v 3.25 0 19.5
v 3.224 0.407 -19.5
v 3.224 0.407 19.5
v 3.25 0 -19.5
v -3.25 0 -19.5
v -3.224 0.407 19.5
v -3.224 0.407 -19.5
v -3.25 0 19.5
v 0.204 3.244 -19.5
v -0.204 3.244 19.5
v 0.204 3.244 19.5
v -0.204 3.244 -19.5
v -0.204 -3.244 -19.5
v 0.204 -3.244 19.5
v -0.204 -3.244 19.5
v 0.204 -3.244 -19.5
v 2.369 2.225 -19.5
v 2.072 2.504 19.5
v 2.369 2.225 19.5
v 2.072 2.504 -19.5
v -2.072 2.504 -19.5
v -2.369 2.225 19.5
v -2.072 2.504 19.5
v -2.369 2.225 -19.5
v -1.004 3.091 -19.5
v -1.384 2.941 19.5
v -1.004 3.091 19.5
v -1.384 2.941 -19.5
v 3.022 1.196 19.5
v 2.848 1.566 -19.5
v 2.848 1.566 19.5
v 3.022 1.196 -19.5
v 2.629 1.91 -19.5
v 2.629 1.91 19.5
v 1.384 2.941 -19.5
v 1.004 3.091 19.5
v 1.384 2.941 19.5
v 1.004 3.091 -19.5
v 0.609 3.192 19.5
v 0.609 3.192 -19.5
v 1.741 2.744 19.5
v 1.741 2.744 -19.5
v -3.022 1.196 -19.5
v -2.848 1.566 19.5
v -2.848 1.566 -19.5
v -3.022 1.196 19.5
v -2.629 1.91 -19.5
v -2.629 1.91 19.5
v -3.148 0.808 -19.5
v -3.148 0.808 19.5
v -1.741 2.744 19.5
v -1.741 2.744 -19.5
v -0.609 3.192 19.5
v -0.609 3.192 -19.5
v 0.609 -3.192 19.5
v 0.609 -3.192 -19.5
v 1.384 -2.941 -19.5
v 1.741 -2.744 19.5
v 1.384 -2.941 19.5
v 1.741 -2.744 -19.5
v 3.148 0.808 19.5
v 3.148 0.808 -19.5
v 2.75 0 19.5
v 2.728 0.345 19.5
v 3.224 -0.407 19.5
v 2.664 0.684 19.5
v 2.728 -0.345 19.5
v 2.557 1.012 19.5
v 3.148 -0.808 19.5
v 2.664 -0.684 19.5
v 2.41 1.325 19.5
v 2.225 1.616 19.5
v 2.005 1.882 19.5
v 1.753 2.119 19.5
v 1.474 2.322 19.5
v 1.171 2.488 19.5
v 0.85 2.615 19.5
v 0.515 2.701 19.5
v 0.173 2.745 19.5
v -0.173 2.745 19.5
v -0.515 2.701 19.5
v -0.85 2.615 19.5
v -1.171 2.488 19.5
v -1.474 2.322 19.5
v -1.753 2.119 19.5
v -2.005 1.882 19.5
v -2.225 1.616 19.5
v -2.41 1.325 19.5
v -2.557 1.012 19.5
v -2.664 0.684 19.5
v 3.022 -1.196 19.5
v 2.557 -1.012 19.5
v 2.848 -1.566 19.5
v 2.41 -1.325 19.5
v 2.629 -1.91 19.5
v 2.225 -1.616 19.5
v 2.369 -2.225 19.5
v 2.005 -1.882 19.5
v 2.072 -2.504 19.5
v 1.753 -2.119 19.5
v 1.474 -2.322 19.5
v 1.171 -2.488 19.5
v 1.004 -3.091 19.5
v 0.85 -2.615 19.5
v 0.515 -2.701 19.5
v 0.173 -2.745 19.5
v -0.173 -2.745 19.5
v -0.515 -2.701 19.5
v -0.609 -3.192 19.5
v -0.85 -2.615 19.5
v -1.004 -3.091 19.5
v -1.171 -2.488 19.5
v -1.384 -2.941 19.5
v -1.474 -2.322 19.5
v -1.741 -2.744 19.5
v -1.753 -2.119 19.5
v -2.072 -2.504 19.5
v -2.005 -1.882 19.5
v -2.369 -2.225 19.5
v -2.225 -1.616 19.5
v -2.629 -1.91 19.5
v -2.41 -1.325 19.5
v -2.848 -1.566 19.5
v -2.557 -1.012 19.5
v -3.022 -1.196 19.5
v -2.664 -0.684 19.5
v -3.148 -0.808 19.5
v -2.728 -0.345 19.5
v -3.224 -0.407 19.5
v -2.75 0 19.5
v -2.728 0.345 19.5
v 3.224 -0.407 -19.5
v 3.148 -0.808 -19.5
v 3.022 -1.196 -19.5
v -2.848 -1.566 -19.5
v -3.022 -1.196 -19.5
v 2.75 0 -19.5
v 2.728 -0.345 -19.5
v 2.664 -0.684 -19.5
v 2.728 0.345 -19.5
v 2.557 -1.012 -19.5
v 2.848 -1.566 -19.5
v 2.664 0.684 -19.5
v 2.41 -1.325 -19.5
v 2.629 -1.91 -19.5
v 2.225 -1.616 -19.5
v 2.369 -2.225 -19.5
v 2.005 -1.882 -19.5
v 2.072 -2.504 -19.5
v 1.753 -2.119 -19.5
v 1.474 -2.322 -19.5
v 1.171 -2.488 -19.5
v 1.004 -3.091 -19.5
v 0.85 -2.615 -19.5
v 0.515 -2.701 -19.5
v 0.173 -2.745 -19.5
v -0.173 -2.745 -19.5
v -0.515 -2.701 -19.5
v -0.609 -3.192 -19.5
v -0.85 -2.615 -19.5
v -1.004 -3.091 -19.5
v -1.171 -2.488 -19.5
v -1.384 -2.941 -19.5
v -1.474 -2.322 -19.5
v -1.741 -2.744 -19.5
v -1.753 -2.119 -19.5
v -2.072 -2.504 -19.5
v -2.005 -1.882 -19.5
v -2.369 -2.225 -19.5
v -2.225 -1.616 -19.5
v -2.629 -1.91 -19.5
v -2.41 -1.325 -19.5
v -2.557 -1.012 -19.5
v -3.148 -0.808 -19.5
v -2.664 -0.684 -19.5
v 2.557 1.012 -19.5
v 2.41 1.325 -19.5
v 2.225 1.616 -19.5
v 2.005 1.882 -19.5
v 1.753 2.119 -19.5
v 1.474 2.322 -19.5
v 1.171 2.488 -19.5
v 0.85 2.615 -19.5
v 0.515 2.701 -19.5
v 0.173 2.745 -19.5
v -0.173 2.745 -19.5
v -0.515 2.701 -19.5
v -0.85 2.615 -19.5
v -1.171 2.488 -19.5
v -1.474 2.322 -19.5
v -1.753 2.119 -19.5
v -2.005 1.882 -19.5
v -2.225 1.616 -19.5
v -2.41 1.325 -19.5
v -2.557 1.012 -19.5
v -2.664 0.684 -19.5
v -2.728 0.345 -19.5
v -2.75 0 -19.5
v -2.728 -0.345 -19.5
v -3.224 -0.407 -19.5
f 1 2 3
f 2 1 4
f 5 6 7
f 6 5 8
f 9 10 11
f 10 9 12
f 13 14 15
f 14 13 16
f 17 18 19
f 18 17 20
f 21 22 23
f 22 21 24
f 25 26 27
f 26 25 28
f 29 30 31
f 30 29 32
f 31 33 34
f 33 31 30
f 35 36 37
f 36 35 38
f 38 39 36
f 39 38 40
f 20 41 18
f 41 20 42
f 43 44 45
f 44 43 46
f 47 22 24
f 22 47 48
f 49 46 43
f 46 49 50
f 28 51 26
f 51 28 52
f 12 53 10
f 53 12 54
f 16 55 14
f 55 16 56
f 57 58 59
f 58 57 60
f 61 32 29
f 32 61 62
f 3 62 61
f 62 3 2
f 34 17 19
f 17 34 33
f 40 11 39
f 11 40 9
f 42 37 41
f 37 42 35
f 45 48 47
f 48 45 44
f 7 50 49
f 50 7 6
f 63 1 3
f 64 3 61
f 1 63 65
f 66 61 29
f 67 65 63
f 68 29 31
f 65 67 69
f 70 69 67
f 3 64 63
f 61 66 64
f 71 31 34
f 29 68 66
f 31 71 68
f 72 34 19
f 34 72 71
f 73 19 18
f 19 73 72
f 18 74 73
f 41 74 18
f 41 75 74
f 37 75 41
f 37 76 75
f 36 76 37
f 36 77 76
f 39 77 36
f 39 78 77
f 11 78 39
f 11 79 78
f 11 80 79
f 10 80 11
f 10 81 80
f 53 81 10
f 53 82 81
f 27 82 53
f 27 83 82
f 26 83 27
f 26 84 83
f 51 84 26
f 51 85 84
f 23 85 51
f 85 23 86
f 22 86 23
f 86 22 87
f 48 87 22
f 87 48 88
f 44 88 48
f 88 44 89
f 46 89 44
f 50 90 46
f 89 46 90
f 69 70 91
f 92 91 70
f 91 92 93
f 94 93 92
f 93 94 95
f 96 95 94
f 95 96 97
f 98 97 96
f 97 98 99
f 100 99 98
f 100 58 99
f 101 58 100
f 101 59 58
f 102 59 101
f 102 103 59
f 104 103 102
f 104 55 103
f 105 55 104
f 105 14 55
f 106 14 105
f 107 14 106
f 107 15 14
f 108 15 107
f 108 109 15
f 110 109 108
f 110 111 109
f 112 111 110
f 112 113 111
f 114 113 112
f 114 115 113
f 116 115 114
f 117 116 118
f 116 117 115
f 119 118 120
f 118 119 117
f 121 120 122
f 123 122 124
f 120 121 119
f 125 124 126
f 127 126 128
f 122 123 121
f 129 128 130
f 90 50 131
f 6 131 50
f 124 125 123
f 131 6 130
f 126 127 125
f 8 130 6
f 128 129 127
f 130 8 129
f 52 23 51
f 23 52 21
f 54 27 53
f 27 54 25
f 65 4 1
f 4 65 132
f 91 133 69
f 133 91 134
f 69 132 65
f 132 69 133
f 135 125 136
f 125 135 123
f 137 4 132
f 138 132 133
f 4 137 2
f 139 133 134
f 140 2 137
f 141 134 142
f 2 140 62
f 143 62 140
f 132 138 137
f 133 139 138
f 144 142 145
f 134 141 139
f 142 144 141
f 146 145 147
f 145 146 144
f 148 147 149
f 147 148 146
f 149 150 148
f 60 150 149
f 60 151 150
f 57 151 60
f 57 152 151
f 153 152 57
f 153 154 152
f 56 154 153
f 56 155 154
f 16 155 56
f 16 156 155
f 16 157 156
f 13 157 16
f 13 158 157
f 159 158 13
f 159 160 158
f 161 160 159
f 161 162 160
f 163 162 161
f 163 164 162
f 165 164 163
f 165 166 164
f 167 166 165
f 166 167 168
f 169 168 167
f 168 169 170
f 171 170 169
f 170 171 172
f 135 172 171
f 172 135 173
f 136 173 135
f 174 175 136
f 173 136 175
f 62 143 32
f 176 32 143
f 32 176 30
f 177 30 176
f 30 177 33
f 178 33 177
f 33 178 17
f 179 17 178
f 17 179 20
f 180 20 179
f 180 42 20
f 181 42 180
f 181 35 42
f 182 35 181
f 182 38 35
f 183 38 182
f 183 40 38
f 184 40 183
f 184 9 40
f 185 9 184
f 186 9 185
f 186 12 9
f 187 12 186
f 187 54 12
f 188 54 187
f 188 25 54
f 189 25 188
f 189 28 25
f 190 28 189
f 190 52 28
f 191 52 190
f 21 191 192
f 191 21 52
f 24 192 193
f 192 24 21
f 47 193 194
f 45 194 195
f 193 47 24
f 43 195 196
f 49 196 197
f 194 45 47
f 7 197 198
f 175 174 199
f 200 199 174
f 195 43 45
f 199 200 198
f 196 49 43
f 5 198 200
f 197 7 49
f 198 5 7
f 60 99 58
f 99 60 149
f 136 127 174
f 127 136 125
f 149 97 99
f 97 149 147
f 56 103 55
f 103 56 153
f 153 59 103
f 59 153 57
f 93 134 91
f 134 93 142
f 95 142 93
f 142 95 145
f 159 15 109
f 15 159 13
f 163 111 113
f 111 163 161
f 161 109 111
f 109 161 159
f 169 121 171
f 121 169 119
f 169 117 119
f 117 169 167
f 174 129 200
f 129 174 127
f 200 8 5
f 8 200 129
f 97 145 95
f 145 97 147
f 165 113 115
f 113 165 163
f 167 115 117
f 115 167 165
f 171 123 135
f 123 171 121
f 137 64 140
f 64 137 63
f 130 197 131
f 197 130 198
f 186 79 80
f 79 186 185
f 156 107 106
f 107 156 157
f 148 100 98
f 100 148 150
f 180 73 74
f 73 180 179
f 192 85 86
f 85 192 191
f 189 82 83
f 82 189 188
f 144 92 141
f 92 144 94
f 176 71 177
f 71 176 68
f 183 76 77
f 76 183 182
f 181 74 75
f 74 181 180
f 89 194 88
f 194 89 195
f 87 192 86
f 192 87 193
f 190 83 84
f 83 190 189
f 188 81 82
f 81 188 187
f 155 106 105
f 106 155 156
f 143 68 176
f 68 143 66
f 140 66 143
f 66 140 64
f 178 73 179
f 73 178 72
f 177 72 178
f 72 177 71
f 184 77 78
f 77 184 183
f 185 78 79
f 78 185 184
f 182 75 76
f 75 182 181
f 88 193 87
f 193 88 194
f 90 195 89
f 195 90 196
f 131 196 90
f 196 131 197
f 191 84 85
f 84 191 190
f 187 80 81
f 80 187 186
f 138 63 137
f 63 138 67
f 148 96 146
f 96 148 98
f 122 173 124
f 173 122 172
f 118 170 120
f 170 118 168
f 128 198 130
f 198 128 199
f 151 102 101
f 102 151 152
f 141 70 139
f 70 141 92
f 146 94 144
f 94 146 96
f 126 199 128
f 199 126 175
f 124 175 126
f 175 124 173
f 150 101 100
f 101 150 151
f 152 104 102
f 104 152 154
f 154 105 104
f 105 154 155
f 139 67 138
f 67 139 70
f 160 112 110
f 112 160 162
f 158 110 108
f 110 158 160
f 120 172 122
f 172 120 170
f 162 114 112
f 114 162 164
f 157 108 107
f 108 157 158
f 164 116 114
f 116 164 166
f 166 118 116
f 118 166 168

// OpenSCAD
$fn = 50;


difference() {
	union() {
		translate(v = [0, 0, -19.5000000000]) {
			cylinder(h = 39, r = 3.2500000000);
		}
	}
	union() {
		translate(v = [0, 0, -100.0000000000]) {
			cylinder(h = 200, r = 2.7500000000);
		}
	}
}
